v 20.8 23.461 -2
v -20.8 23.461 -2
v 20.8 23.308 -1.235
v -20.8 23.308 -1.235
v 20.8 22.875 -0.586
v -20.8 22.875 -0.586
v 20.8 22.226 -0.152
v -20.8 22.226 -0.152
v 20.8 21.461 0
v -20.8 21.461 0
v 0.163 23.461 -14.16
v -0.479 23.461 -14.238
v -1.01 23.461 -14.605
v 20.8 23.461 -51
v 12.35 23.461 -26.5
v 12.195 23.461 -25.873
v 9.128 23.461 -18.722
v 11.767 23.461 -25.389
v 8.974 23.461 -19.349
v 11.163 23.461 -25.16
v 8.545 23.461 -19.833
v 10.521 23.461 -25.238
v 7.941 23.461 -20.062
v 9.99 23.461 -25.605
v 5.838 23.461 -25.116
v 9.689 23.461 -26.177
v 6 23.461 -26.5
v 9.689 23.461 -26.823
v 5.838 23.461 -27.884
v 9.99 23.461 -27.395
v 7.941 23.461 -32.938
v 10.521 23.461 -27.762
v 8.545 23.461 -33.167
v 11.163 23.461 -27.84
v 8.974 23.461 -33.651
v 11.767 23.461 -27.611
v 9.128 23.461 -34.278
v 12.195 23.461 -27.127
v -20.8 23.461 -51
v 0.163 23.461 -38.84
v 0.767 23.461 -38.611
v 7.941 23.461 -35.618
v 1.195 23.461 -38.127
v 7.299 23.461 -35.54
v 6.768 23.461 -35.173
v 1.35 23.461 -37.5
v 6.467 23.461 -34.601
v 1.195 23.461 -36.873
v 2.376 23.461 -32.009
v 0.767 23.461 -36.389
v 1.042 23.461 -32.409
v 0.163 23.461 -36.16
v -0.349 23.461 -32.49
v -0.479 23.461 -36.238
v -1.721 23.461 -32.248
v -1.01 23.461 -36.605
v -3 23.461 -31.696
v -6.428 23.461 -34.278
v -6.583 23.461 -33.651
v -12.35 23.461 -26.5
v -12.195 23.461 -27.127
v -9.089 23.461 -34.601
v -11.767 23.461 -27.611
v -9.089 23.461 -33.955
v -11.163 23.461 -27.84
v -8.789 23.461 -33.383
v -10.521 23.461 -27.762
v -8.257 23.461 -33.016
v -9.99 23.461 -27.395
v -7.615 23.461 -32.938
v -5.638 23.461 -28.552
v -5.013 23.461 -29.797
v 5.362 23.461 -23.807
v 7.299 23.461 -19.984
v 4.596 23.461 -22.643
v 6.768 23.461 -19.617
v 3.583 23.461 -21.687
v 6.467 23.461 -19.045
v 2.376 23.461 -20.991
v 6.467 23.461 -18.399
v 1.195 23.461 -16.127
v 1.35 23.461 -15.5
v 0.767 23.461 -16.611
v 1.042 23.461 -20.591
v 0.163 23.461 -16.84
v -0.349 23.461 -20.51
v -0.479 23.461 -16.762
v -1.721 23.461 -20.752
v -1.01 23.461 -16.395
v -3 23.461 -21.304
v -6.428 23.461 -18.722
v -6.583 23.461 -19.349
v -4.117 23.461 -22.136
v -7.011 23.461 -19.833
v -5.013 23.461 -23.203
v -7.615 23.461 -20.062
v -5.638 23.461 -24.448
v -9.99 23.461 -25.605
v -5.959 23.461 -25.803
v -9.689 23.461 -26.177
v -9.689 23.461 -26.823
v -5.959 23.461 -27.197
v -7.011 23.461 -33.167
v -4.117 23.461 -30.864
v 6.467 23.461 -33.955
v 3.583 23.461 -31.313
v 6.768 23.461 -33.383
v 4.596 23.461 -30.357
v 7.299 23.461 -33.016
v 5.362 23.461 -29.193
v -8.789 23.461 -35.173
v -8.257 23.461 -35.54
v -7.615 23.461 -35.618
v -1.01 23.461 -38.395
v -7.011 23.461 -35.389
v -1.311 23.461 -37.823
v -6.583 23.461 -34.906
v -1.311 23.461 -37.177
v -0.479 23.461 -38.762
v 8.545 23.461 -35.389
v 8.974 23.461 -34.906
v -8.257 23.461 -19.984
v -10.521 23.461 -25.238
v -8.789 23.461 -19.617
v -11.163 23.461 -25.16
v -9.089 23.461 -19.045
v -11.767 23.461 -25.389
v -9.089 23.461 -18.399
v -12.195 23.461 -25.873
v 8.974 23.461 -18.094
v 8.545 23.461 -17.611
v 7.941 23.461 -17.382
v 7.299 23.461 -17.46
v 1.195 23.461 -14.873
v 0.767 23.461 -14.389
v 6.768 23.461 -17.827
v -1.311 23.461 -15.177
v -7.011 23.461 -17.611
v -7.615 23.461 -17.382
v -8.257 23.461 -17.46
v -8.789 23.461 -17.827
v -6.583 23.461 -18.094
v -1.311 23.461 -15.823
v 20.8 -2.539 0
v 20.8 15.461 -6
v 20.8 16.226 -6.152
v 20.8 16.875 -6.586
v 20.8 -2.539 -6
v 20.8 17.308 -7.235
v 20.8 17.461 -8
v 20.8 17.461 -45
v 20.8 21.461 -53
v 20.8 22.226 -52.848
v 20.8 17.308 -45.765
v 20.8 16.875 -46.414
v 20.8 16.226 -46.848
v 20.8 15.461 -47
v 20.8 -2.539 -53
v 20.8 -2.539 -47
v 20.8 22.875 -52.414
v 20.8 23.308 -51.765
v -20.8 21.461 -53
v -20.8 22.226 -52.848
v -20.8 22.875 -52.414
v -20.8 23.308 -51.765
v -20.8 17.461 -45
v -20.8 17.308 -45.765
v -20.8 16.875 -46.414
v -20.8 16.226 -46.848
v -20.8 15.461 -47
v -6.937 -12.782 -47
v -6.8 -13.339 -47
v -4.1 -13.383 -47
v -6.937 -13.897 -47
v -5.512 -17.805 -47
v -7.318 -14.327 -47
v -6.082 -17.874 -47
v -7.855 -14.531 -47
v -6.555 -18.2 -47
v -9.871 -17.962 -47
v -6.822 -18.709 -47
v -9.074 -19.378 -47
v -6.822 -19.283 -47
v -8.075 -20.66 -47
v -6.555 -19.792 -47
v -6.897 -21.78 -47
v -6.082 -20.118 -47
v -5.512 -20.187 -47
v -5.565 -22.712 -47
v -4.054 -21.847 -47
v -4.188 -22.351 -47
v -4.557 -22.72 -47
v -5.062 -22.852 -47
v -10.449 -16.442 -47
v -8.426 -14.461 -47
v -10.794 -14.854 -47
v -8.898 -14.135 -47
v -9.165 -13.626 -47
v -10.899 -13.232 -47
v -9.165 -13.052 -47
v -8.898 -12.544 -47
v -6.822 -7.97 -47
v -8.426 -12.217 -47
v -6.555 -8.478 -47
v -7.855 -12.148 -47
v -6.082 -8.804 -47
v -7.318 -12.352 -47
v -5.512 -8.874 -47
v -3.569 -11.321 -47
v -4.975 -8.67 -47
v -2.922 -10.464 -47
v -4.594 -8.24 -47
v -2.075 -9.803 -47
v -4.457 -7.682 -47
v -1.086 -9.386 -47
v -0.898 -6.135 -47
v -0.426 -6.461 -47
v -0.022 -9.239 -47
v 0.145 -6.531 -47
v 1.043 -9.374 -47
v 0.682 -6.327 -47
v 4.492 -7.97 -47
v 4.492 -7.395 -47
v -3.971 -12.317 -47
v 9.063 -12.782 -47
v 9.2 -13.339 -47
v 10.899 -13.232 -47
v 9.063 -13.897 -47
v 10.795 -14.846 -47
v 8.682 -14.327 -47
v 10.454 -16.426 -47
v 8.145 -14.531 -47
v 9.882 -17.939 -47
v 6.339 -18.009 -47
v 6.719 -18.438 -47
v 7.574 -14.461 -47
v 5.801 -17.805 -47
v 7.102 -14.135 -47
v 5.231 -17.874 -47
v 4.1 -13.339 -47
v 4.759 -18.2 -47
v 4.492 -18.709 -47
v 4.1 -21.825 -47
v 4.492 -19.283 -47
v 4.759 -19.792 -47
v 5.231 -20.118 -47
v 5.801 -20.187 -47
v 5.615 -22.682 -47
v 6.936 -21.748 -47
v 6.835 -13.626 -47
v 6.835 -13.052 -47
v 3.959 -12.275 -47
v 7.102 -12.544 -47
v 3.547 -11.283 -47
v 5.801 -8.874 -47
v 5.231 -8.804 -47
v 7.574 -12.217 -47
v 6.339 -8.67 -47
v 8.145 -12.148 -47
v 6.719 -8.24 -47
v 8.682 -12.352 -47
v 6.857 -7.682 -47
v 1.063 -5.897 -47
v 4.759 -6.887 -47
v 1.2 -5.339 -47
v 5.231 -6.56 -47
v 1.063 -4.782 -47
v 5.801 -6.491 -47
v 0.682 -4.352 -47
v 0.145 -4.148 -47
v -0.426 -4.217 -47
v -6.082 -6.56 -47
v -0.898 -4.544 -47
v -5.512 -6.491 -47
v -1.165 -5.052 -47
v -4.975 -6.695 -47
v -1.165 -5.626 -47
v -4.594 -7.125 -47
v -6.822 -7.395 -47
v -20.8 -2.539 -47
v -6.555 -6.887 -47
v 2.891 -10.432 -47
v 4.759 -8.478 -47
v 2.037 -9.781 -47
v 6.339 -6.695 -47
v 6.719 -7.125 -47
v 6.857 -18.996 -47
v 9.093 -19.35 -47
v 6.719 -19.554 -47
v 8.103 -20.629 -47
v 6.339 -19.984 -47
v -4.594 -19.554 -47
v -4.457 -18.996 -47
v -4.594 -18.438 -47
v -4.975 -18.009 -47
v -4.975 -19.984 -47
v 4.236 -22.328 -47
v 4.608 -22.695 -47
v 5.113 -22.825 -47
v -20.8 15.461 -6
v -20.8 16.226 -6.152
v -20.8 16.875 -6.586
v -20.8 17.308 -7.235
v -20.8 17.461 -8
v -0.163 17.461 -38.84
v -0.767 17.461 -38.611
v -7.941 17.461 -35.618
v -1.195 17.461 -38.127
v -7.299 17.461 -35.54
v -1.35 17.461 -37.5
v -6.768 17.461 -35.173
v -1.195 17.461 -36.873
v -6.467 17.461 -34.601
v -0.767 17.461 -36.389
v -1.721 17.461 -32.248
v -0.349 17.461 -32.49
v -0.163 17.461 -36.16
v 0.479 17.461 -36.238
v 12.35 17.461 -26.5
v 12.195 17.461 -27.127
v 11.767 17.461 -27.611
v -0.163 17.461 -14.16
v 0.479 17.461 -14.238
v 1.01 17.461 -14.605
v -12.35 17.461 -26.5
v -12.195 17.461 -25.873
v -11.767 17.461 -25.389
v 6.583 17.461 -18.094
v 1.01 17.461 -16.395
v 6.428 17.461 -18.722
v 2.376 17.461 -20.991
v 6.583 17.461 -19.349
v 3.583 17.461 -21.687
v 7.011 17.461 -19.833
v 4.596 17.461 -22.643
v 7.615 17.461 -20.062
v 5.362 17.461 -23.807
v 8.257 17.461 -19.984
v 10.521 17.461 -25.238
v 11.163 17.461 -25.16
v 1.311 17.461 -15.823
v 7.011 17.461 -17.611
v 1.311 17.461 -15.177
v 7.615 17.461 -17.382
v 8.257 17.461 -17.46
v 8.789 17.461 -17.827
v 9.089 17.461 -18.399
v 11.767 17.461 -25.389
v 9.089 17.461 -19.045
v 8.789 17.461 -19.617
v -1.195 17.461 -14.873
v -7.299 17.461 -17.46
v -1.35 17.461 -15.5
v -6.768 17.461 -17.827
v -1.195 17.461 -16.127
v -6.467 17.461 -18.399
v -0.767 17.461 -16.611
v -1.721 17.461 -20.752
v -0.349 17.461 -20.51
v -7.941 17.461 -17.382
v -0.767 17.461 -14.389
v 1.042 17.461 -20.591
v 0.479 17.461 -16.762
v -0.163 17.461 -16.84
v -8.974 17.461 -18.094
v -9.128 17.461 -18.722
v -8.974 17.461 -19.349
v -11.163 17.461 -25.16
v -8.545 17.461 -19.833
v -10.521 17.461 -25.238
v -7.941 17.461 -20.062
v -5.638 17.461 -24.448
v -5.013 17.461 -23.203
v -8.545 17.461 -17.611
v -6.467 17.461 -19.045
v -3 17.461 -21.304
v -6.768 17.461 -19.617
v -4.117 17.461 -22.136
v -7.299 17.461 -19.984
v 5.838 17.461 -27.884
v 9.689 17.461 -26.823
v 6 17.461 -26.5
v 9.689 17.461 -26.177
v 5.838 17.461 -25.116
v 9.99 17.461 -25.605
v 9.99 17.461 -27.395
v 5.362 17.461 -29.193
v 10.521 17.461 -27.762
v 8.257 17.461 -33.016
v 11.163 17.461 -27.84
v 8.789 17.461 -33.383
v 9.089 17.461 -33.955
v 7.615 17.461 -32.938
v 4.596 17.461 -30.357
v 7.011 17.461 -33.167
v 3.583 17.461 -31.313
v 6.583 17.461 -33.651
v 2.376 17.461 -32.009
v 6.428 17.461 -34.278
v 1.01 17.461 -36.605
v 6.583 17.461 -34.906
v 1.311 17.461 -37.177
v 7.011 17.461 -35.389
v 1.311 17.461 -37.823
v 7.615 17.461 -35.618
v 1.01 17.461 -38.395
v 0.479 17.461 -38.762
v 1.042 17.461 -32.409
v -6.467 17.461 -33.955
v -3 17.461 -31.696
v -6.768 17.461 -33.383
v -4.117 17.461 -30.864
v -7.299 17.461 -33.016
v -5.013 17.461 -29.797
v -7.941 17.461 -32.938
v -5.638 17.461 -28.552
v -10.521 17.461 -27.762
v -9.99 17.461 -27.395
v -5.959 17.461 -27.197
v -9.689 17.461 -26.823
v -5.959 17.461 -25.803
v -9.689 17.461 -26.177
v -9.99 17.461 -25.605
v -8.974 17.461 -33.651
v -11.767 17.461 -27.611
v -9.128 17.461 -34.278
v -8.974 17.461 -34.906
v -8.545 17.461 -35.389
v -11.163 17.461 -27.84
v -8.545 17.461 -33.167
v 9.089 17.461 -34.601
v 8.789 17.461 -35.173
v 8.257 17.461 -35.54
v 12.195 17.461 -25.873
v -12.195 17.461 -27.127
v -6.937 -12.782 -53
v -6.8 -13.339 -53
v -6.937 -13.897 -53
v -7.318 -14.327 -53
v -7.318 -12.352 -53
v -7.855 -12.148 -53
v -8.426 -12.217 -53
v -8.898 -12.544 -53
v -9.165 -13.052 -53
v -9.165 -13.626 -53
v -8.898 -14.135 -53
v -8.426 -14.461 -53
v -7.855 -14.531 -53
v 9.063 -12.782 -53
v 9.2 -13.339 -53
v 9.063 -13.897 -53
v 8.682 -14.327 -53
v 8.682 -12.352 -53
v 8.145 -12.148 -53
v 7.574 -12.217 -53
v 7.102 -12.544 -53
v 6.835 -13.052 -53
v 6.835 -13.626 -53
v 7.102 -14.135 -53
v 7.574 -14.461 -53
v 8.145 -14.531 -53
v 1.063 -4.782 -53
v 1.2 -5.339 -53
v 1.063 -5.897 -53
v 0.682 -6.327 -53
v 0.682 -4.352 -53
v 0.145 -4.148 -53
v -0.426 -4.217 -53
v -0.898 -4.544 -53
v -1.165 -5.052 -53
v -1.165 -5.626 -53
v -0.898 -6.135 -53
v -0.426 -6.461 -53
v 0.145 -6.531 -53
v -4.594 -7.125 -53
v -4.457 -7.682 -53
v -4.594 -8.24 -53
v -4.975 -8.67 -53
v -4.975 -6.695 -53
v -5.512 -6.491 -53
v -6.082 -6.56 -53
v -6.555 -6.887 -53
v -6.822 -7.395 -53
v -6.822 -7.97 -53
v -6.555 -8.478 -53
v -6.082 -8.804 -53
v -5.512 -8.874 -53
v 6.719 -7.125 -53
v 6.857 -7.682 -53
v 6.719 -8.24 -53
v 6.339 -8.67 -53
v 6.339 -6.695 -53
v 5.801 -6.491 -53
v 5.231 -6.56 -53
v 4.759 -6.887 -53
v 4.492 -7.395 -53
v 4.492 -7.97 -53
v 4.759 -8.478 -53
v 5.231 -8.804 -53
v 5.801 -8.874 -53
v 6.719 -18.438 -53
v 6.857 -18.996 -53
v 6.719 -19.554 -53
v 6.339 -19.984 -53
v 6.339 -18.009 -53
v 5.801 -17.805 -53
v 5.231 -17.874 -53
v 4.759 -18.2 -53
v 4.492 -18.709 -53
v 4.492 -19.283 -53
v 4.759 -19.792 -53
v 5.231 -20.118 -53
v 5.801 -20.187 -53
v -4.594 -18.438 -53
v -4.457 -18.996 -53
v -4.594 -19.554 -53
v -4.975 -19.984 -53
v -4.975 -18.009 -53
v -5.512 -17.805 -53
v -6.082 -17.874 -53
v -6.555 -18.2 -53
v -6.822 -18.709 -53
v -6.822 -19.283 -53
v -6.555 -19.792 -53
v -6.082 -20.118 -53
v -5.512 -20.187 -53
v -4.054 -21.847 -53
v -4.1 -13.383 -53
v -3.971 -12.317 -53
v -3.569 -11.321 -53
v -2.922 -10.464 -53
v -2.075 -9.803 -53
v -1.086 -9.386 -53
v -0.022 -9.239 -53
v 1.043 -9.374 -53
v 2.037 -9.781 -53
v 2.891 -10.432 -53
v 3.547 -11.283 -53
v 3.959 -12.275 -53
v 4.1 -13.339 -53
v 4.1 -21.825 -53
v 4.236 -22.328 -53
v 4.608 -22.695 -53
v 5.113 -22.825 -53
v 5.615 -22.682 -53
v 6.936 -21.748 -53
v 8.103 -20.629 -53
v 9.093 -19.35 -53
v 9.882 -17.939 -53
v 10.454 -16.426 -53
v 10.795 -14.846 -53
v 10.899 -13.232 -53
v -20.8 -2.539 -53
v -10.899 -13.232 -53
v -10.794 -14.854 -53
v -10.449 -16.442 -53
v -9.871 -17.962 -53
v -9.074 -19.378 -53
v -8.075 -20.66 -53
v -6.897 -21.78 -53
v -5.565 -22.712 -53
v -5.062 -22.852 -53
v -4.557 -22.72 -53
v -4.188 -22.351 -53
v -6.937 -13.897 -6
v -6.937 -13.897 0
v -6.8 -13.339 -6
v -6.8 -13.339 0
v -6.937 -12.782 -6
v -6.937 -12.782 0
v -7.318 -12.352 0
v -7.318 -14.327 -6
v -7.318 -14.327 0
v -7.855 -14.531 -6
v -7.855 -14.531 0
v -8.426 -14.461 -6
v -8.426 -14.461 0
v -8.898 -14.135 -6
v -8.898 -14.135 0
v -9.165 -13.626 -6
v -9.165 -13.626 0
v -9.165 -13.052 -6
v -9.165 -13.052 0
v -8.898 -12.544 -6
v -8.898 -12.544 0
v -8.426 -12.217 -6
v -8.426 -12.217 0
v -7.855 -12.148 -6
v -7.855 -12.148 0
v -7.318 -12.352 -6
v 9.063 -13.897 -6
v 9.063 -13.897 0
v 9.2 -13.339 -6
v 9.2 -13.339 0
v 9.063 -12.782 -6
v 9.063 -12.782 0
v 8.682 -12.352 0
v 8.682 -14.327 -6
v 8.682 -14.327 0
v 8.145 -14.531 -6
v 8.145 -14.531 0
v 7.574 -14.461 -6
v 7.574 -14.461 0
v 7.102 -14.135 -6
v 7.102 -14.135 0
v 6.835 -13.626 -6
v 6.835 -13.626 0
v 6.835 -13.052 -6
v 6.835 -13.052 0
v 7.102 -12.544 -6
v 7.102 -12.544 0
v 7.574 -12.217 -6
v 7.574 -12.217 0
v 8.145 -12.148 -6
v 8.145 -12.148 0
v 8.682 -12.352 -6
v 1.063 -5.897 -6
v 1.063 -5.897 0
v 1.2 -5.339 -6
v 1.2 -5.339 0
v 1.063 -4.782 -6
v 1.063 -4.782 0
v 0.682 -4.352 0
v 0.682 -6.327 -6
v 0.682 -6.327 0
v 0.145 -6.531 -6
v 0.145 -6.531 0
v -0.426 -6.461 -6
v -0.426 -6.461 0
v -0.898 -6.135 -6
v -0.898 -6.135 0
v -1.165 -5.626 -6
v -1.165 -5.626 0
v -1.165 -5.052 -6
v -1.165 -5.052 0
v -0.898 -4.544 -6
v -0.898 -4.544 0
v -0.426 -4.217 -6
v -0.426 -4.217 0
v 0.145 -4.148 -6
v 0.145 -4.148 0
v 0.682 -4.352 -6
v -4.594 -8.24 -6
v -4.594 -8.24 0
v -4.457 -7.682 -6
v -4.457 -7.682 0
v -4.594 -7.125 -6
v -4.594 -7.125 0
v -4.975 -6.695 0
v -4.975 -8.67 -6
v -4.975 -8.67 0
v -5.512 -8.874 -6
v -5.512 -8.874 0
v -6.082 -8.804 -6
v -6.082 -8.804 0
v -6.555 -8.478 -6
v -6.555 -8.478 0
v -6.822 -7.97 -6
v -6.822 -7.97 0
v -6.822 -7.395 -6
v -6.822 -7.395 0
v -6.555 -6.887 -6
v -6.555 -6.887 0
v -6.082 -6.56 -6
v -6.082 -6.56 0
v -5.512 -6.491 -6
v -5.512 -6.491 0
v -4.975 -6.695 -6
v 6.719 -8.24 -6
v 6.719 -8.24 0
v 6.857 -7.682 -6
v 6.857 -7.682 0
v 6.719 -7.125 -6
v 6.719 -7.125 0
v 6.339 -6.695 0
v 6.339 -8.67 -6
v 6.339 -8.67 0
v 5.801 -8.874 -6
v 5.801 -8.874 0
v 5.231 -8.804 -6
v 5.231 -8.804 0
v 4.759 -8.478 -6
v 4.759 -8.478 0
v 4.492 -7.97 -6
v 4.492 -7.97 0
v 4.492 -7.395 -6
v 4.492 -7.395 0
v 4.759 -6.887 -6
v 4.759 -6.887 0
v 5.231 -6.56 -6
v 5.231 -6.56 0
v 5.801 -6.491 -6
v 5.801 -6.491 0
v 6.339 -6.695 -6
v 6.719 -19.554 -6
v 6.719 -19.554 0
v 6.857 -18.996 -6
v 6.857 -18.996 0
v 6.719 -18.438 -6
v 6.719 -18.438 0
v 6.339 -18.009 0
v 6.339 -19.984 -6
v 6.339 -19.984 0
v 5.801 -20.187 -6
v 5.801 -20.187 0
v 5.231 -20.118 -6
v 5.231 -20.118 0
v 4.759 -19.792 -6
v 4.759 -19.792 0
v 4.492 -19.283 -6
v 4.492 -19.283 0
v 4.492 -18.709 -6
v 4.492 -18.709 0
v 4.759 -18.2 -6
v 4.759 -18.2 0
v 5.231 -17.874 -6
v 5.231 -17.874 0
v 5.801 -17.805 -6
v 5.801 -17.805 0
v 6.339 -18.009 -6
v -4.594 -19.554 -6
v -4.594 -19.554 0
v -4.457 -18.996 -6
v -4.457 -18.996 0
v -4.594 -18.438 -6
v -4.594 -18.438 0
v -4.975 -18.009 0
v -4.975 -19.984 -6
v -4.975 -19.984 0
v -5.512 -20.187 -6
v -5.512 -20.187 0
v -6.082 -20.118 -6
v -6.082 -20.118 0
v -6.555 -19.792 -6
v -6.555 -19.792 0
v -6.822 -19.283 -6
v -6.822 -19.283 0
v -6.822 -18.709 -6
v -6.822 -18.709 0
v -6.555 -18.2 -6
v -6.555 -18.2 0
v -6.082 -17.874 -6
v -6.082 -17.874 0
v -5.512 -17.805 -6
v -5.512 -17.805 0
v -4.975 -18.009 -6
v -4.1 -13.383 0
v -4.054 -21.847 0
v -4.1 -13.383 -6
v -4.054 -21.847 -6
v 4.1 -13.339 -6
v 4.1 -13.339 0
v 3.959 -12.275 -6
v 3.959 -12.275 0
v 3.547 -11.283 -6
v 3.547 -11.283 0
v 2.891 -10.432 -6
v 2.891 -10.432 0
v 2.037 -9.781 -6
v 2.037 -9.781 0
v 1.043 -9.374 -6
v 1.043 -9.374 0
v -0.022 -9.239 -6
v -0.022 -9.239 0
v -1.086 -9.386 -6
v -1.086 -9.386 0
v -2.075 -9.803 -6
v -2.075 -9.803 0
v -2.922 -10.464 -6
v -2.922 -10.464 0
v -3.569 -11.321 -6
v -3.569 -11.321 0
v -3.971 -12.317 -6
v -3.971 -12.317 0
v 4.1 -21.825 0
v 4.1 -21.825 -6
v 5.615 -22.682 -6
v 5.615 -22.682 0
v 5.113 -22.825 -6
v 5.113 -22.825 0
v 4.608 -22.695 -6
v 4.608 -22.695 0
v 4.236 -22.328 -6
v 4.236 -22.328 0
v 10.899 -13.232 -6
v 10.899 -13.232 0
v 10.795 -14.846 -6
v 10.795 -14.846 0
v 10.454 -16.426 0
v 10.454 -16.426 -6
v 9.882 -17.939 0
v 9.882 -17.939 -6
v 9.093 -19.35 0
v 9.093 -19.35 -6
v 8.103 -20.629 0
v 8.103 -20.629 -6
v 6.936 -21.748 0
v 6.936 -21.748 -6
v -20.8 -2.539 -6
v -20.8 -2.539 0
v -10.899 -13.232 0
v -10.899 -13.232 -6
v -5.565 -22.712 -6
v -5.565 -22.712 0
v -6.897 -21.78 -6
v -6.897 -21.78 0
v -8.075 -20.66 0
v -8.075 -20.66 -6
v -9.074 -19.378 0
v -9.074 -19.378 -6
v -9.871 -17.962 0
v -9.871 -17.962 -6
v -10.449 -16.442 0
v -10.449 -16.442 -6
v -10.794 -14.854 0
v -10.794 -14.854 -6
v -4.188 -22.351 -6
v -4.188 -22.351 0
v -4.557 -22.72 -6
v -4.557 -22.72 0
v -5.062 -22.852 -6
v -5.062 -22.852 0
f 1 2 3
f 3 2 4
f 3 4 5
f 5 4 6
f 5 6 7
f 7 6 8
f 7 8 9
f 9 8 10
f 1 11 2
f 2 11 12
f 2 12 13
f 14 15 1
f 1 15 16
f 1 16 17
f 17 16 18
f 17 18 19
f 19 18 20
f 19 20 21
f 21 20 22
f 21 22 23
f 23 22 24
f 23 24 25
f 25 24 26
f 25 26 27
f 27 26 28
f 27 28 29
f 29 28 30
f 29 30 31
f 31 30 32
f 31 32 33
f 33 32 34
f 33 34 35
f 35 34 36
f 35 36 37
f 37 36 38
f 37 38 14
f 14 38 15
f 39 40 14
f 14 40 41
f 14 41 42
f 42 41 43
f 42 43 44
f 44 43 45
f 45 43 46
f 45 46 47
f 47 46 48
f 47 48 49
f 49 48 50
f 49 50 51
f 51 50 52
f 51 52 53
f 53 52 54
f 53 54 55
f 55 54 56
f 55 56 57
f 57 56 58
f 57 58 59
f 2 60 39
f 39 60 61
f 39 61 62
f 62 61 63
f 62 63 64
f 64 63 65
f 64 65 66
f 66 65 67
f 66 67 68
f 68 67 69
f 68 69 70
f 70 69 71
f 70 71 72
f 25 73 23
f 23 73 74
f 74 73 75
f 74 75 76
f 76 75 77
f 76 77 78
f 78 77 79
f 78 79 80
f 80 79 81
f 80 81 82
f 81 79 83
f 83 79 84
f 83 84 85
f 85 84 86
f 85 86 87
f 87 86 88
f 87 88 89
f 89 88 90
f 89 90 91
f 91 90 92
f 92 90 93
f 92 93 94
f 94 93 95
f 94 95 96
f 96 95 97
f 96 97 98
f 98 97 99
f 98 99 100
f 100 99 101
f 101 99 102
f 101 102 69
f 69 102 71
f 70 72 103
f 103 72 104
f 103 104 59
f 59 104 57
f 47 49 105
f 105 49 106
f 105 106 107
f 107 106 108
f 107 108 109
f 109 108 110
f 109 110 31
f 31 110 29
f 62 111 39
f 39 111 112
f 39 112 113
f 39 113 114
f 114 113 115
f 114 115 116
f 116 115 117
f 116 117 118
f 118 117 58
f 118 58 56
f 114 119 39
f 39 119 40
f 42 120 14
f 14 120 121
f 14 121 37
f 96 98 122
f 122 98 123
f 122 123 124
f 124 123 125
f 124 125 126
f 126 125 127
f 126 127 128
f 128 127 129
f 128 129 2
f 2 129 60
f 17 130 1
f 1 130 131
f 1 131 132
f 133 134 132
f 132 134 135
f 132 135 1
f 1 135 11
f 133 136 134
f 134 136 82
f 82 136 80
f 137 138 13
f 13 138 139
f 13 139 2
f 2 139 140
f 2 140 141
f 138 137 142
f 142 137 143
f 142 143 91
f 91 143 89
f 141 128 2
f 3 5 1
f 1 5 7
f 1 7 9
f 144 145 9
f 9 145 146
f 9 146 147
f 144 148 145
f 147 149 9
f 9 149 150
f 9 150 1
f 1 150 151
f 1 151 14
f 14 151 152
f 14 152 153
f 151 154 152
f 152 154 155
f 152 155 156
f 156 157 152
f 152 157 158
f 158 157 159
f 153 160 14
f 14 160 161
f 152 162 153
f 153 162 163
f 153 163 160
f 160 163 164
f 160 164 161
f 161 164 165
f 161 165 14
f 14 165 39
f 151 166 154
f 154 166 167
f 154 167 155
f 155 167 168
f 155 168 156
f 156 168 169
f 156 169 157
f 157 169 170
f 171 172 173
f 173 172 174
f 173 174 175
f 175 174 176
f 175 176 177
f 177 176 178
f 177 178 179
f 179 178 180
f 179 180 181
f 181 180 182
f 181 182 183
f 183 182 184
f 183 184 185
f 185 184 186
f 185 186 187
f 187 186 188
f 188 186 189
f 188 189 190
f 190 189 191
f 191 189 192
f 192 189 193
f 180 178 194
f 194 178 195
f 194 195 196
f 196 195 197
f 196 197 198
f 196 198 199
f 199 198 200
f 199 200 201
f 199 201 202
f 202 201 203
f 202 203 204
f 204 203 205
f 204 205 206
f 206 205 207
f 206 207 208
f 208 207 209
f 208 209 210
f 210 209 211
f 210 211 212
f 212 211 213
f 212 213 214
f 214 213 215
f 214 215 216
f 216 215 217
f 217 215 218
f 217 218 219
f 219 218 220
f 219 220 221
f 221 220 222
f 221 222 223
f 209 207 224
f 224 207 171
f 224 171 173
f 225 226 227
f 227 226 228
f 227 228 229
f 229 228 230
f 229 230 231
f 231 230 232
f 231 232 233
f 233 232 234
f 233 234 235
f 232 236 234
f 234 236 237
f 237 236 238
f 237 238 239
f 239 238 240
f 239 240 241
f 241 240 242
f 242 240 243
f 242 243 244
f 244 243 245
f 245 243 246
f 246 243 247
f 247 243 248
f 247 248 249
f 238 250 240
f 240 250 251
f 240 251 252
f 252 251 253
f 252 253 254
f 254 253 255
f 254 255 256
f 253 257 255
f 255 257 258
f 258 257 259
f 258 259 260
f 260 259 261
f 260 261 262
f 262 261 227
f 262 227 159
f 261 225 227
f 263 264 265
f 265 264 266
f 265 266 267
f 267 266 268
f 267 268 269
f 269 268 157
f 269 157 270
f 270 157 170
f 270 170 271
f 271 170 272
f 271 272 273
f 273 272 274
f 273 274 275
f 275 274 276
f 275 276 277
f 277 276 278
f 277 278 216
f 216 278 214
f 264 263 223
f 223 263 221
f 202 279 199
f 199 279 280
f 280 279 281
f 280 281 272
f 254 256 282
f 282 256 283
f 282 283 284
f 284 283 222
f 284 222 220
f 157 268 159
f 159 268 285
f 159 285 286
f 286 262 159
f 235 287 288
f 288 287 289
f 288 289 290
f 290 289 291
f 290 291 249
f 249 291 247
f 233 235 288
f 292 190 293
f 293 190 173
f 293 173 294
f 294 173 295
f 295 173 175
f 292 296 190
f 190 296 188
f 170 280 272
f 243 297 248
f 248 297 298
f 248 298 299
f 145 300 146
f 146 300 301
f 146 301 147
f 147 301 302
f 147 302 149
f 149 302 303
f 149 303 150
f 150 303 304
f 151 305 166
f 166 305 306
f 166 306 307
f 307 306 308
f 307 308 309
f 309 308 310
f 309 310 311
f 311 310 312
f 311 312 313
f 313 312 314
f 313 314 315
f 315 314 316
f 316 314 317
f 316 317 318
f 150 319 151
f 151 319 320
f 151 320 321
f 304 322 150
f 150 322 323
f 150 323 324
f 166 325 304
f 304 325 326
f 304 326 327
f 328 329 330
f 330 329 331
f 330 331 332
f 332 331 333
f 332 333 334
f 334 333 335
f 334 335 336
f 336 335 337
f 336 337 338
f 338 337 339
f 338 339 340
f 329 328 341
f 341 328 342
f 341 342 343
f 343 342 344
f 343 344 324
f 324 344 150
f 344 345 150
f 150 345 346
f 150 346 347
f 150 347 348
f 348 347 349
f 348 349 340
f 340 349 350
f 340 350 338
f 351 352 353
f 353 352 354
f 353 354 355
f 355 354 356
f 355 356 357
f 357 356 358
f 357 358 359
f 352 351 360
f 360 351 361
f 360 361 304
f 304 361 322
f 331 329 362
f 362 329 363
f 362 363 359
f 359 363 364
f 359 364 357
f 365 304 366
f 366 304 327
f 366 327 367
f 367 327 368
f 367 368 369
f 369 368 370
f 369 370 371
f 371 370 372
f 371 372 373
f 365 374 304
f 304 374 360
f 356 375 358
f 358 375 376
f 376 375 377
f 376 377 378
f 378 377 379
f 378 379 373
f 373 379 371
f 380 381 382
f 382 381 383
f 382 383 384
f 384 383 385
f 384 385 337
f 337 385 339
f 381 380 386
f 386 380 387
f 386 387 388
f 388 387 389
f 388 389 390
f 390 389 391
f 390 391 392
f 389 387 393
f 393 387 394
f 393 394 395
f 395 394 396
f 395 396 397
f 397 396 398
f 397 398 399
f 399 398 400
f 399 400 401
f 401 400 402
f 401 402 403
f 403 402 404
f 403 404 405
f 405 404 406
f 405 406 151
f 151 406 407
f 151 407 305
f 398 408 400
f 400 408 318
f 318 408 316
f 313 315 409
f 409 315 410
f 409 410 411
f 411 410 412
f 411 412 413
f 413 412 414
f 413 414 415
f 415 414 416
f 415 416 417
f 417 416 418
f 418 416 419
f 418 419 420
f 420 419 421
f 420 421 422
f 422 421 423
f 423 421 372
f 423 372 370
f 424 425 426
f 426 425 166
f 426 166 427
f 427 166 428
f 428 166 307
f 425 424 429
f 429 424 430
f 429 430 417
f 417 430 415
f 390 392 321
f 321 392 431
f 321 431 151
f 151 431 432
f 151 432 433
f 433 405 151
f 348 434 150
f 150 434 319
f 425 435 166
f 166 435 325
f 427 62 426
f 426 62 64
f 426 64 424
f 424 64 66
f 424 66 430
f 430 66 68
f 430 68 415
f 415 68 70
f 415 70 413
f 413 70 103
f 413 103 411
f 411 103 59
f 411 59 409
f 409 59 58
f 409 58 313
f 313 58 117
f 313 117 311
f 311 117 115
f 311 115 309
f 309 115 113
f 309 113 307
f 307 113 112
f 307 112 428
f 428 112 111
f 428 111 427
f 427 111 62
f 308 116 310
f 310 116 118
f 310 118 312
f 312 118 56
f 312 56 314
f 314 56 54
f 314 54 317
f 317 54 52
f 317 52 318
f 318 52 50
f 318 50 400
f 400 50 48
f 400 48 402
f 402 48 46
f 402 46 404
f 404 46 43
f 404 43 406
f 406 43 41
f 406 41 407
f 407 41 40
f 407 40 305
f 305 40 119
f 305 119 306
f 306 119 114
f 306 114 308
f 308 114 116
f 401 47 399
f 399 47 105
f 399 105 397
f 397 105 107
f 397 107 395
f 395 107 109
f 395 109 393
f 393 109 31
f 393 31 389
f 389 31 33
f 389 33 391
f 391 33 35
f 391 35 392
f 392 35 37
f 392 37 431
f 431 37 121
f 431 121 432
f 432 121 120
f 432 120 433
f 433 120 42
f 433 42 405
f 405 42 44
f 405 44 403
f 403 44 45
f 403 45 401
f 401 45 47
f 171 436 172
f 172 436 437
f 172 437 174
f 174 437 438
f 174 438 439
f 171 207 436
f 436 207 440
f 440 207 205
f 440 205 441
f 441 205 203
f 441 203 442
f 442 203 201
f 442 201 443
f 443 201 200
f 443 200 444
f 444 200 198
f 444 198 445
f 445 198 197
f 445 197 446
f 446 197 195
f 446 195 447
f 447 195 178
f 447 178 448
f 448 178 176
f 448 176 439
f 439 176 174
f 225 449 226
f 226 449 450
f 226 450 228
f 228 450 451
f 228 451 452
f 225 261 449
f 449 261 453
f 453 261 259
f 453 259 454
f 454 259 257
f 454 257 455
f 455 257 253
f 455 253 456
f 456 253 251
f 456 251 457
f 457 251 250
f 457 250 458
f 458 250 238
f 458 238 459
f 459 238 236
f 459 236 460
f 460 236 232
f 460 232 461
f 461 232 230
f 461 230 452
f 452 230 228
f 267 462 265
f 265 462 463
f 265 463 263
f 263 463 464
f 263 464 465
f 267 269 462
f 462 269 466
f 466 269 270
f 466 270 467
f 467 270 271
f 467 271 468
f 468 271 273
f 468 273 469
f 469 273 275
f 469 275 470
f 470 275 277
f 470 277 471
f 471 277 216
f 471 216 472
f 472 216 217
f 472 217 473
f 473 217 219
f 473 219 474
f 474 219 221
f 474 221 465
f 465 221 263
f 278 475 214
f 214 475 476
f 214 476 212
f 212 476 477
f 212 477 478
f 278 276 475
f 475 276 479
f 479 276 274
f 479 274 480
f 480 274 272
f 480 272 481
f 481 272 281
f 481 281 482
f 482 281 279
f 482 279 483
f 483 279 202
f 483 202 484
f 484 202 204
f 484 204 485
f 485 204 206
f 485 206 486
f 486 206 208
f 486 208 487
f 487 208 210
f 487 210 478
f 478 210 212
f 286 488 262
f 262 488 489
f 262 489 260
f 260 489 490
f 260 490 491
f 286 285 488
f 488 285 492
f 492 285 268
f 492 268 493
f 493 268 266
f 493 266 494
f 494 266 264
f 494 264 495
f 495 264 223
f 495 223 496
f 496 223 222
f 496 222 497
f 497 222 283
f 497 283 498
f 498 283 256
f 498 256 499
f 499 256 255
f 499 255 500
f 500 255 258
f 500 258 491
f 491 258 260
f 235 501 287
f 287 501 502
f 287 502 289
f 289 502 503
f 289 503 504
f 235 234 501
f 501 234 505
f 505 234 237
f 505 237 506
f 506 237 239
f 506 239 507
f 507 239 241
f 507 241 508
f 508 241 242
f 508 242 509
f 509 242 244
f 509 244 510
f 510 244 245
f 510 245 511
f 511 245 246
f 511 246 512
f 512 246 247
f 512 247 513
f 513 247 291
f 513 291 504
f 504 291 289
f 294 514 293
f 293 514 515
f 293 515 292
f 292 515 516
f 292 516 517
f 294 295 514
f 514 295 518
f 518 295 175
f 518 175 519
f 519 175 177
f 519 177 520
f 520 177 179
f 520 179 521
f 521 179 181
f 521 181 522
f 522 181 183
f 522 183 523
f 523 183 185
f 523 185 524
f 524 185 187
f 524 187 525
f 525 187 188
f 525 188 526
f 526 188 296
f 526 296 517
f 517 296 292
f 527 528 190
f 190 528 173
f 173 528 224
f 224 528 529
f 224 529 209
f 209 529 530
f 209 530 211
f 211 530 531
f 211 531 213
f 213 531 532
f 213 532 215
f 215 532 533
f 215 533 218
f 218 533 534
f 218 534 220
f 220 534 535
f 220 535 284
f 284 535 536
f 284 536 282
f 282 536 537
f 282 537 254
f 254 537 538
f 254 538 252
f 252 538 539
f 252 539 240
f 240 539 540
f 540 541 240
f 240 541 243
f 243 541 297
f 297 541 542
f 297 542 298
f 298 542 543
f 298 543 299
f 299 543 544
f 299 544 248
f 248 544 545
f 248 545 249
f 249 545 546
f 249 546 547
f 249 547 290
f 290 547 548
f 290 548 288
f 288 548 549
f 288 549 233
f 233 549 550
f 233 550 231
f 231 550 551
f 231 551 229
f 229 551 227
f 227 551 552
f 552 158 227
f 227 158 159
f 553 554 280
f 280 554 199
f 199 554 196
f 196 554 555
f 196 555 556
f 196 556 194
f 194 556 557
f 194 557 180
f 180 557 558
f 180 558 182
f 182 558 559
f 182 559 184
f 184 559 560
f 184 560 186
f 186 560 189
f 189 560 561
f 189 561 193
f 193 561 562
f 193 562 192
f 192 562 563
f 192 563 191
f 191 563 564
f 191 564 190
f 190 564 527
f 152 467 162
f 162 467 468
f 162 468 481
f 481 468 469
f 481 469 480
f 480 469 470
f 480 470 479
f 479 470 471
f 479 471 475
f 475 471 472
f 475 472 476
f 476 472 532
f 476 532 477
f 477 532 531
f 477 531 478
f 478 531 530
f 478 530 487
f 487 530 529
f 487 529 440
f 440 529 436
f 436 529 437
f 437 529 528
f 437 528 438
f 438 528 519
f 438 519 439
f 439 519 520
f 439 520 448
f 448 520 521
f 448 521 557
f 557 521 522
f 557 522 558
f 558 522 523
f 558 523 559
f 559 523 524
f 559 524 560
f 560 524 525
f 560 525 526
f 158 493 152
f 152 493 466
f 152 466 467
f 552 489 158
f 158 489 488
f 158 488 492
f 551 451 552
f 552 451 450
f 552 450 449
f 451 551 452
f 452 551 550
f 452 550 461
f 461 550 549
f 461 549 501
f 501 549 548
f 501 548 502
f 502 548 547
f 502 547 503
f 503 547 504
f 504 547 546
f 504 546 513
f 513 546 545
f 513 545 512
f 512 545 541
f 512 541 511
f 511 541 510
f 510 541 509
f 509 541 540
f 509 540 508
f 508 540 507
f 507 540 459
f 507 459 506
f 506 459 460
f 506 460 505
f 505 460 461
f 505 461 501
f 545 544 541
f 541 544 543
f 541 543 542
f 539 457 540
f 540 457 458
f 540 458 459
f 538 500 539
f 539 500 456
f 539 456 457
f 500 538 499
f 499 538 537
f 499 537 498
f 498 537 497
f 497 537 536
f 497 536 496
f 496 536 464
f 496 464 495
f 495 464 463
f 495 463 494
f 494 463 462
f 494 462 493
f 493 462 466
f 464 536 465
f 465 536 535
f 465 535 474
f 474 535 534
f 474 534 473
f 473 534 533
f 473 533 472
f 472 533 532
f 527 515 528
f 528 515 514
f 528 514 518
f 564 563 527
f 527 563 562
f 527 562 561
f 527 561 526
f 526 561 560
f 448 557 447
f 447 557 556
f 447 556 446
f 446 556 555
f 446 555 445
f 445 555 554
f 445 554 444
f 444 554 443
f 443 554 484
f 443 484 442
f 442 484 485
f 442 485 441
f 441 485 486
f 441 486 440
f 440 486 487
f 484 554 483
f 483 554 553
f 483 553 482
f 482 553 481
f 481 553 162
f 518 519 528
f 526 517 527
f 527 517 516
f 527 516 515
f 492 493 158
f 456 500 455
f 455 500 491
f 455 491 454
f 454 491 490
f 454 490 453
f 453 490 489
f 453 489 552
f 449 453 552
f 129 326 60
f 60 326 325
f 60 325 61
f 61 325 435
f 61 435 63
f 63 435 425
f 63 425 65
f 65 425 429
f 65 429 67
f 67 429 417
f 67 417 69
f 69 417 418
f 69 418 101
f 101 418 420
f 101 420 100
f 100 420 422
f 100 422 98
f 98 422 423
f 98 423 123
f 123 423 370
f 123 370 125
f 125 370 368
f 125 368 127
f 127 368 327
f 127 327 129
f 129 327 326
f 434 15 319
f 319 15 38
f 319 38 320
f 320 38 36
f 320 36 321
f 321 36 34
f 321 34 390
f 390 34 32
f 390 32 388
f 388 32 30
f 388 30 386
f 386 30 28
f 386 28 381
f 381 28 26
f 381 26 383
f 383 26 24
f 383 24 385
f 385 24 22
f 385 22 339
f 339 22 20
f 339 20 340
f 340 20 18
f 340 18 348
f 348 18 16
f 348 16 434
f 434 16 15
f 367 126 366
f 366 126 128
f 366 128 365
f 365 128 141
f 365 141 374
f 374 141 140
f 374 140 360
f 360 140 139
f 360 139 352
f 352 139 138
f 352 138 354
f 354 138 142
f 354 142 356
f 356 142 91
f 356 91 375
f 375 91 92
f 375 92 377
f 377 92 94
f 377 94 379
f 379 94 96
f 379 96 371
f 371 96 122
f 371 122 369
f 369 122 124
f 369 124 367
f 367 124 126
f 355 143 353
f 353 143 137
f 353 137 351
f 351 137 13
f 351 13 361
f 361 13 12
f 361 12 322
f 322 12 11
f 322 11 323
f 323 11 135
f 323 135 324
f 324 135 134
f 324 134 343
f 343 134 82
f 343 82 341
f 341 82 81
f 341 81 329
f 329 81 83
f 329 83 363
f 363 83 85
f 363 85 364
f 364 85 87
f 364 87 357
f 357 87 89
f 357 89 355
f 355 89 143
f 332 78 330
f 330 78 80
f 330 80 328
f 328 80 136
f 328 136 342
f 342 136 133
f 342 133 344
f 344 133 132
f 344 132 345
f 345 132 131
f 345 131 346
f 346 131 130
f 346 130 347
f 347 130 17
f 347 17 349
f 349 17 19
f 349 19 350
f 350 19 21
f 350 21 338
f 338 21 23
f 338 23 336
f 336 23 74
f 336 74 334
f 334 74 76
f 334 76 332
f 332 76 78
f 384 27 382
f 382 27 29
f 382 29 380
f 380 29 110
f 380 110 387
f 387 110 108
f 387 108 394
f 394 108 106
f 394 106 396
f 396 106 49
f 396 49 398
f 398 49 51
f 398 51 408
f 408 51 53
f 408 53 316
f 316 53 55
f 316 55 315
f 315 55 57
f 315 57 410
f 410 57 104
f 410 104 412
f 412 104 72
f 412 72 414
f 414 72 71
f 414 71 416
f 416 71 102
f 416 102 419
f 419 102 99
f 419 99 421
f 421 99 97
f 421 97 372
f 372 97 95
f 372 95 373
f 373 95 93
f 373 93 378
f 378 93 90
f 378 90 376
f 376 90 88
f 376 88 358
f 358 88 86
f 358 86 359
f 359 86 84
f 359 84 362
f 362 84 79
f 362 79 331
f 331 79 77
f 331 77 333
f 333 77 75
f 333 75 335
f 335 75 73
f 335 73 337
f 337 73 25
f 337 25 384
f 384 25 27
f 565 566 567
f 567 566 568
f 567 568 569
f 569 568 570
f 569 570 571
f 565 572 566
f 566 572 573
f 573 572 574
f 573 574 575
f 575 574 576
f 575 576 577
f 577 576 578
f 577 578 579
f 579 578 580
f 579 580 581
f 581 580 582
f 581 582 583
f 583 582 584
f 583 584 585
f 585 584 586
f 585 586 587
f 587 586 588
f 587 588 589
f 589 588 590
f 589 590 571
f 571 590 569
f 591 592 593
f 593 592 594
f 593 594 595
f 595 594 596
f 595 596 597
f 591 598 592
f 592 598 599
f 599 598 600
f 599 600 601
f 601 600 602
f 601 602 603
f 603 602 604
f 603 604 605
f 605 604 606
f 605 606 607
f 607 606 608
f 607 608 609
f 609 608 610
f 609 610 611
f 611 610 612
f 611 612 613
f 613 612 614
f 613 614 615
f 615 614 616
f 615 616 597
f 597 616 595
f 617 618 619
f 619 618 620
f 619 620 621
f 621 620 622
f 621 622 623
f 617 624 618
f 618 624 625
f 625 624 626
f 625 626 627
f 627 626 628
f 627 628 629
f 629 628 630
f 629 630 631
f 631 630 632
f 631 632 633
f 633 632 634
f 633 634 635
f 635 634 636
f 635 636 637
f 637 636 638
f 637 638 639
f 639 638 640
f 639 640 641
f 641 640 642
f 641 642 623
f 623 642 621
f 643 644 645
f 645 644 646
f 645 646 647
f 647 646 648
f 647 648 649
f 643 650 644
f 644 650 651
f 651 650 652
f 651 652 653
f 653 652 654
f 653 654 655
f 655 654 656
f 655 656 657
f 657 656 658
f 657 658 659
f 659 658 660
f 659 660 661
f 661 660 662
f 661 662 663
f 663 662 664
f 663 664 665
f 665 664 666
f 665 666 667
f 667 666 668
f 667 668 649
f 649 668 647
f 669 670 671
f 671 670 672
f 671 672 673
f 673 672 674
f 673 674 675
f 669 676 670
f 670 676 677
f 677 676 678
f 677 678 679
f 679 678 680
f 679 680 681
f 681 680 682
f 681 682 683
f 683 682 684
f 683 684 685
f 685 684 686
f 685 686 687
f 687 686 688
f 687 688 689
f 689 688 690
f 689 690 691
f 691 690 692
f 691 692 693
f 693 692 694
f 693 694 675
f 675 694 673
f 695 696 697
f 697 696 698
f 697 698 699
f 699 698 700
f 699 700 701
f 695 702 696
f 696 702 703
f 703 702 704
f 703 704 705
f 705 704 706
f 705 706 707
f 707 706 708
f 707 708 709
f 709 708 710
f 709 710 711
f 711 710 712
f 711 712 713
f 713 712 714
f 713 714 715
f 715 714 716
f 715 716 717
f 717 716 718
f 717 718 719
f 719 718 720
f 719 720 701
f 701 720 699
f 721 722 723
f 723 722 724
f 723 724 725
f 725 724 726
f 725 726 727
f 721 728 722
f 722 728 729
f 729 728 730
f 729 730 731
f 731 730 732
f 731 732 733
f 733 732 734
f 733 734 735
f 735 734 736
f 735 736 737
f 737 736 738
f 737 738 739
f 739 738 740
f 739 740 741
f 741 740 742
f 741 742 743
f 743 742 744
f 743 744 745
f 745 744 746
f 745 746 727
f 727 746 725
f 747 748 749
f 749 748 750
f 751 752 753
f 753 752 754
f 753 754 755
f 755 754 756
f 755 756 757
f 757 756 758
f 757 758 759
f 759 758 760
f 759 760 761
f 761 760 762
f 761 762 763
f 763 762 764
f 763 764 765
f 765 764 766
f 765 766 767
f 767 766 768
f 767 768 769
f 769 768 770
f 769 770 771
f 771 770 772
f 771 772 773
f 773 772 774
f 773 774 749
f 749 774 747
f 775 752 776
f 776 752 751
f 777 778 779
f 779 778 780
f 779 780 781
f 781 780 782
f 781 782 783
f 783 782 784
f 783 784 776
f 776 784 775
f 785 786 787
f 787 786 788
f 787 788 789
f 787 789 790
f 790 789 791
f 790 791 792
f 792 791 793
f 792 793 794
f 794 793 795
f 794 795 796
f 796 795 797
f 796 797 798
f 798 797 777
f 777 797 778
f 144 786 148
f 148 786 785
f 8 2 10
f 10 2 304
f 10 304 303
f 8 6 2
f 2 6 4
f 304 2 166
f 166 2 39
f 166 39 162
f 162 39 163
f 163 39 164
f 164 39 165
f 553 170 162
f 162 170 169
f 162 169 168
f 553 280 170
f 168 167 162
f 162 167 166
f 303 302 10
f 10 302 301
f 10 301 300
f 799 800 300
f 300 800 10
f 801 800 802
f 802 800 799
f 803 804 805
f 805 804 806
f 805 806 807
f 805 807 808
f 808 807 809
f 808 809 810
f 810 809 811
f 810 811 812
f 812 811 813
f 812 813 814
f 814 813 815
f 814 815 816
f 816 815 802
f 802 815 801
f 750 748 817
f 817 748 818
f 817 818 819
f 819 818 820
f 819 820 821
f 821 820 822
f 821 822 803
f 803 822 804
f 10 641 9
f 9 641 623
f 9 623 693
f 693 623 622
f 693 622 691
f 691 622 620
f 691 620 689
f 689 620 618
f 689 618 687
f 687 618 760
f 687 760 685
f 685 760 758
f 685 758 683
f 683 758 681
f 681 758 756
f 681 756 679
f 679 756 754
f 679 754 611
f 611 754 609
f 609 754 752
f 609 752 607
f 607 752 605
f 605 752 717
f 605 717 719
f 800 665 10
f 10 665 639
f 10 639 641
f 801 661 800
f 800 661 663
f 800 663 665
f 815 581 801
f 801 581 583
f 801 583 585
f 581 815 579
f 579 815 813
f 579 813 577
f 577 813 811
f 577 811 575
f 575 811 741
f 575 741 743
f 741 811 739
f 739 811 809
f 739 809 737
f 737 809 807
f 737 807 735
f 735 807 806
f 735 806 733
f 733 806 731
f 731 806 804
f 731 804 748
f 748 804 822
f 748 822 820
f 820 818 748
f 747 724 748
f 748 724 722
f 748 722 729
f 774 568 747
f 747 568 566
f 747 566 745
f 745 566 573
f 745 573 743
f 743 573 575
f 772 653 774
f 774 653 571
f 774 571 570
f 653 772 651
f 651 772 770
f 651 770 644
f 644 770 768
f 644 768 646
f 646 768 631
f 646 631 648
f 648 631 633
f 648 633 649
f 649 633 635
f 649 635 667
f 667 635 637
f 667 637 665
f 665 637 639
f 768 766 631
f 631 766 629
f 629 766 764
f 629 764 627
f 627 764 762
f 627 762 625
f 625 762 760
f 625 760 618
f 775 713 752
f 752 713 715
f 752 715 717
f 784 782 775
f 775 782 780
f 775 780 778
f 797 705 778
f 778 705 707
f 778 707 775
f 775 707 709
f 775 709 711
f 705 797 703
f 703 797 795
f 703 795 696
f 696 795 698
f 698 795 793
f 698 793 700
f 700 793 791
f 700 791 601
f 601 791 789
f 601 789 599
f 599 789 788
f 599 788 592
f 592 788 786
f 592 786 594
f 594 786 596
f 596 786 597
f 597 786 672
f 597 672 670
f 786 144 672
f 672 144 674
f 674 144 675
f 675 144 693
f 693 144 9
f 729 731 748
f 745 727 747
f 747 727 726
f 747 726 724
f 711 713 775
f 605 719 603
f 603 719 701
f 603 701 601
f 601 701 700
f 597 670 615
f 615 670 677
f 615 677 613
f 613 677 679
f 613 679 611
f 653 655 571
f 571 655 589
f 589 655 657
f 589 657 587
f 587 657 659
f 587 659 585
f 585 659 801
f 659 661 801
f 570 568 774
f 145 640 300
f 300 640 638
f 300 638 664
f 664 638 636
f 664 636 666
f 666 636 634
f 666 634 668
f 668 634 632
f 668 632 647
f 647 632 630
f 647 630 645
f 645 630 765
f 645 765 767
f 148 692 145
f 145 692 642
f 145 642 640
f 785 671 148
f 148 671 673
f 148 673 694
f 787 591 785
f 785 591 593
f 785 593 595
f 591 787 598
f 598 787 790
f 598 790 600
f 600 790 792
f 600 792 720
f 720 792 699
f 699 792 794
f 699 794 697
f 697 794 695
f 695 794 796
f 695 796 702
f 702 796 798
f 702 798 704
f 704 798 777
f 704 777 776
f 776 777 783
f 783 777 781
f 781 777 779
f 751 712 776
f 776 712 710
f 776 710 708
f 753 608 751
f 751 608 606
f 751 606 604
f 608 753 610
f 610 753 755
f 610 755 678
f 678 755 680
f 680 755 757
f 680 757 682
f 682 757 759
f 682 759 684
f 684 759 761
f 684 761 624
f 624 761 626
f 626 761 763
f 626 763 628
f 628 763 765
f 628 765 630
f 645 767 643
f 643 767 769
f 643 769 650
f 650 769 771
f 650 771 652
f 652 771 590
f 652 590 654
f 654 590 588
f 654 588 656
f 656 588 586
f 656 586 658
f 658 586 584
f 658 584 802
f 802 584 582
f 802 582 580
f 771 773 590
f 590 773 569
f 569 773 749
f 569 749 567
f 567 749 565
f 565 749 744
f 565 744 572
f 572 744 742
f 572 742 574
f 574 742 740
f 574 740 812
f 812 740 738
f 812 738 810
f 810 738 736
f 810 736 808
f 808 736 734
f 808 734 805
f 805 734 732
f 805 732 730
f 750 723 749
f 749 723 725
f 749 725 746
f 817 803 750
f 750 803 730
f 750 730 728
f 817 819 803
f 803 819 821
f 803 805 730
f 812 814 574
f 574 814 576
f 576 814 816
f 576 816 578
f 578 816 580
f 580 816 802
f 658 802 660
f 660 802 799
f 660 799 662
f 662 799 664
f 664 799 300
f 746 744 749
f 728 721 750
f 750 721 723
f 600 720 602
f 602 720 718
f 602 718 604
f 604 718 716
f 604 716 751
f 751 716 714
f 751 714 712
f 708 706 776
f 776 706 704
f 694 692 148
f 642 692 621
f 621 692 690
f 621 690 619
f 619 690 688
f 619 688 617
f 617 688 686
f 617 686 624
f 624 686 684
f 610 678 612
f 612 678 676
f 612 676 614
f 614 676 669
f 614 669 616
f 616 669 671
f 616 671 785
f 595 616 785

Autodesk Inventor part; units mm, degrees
ref_plane "YZ Plane" through (0, 0, 0) normal (1, 0, 0) x (0, 1, 0)
ref_plane "XZ Plane" through (0, 0, 0) normal (0, 1, 0) x (-1, 0, 0)
ref_plane "XY Plane" through (0, 0, 0) normal (0, 0, 1) x (1, 0, 0)
ref_plane "작업 평면1" through (0, 0, 0) normal (0, 0, 1) x (1, 0, 0)
sketch "스케치1" plane through (0, 0, 0) normal (0, 0, 1) x (1, 0, 0)
  arc A0 (5.05, 17.3607) -> (6.05, 18.3607) centre (6.05, 17.3607) ccw projected
  line L0 (5.05, 17.3607) -> (-5.05, 17.3607) projected
  arc A1 (-6.05, 18.3607) -> (-5.05, 17.3607) centre (-6.05, 17.3607) ccw projected
  line L1 (-6.05, 18.3607) -> (-6.05, 23.4607) projected
  line L2 (-6.05, 23.4607) -> (-20.8, 23.4607) projected
  line L3 (-20.8, 23.4607) -> (-20.8, -2.5393) projected
  line L4 (-20.8, -2.5393) -> (-10.8995, -13.2319) projected
  arc A2 (-10.8995, -13.2319) -> (-5.5649, -22.7117) centre (0, -13.3393) ccw projected
  arc A3 (-5.5649, -22.7117) -> (-4.0544, -21.8465) centre (-5.0543, -21.8519) ccw projected
  line L5 (-4.0544, -21.8465) -> (-4.0998, -13.3833) projected
  arc A4 (4.1, -13.3393) -> (-4.0998, -13.3833) centre (0, -13.3393) ccw projected
  line L6 (4.1, -13.3393) -> (4.1, -21.8246) projected
  arc A5 (4.1, -21.8246) -> (5.6152, -22.6817) centre (5.1, -21.8246) ccw projected
  arc A6 (5.6152, -22.6817) -> (10.8995, -13.2319) centre (0, -13.3393) ccw projected
  line L7 (10.8995, -13.2319) -> (20.8, -2.5393) projected
  line L8 (20.8, -2.5393) -> (20.8, 23.4607) projected
  line L9 (20.8, 23.4607) -> (6.05, 23.4607) projected
  line L10 (6.05, 23.4607) -> (6.05, 18.3607) projected
  circle A7 centre (5.6569, -18.9962) radius 1.2 projected
  circle A8 centre (5.6569, -7.6825) radius 1.2 projected
  circle A9 centre (-5.6569, -7.6825) radius 1.2 projected
  circle A10 centre (0, -5.3393) radius 1.2 projected
  circle A11 centre (8, -13.3393) radius 1.2 projected
  circle A12 centre (-15.8, 20.4107) radius 1.35 projected
  circle A13 centre (15.8, 20.4107) radius 1.35 projected
  circle A14 centre (-8, -13.3393) radius 1.2 projected
  circle A15 centre (-5.6569, -18.9962) radius 1.2 projected
  line L11 (-20.8, 23.4607) -> (20.8, 23.4607)
  line L12 (20.8, 23.4607) -> (20.8, -2.5393)
  line L13 (20.8, -2.5393) -> (-20.8, -2.5393)
  line L14 (-20.8, -2.5393) -> (-20.8, 23.4607)
  circle A16 centre (0, -13.3393) radius 4.1
  circle A17 centre (0, -13.3393) radius 10.9
  circle A18 centre (0, -5.3393) radius 1.2
  circle A19 centre (-5.6569, -7.6825) radius 1.2
  circle A20 centre (-8, -13.3393) radius 1.2
  circle A21 centre (-5.6569, -18.9962) radius 1.2
  circle A22 centre (0, -21.3393) radius 1.2
  circle A23 centre (5.6569, -18.9962) radius 1.2
  circle A24 centre (8, -13.3393) radius 1.2
  circle A25 centre (5.6569, -7.6825) radius 1.2
  line L15 (-20.8, -2.5393) -> (-10.8995, -13.2319)
  line L16 (10.8995, -13.2319) -> (20.8, -2.5393)
  point P0 (0, 0)
  point P1 (-1.4731, -2.5393)
  point P2 (1.4731, -2.5393)
  dimension "d2" = 360
extrude "돌출1" add sketch "스케치1" against normal blind 6 contours L0 A1 L1 L11 L10 A0 | A0 L10 L9 L8 L13 A17 L3 L2 L1 A1 L0 | L7 A17 L13 | A6 A5 L6 A4 L5 A3 A2 A17 L13 | L13 A17 L4 | A12 | A13
sketch "스케치2" plane through (0, 0, -6) normal (0, 0, -1) x (-1, 0, 0)
  circle A0 centre (-5.6569, -18.9962) radius 1.2 projected
  circle A1 centre (-5.6569, -7.6825) radius 1.2 projected
  circle A2 centre (5.6569, -7.6825) radius 1.2 projected
  circle A3 centre (0, -5.3393) radius 1.2 projected
  circle A4 centre (-8, -13.3393) radius 1.2 projected
  circle A5 centre (15.8, 20.4107) radius 1.35 projected
  circle A6 centre (-15.8, 20.4107) radius 1.35 projected
  circle A7 centre (8, -13.3393) radius 1.2 projected
  circle A8 centre (5.6569, -18.9962) radius 1.2 projected
  arc A9 (-6.05, 18.3607) -> (-5.05, 17.3607) centre (-6.05, 17.3607) ccw projected
  line L0 (-6.05, 18.3607) -> (-6.05, 23.4607) projected
  line L1 (-20.8, 23.4607) -> (-6.05, 23.4607) projected
  line L2 (-20.8, -2.5393) -> (-20.8, 23.4607) projected
  line L3 (-10.8995, -13.2319) -> (-20.8, -2.5393) projected
  arc A10 (-10.8995, -13.2319) -> (-5.6152, -22.6817) centre (0, -13.3393) ccw projected
  arc A11 (-5.6152, -22.6817) -> (-4.1, -21.8246) centre (-5.1, -21.8246) ccw projected
  line L4 (-4.1, -13.3393) -> (-4.1, -21.8246) projected
  arc A12 (4.0998, -13.3833) -> (-4.1, -13.3393) centre (0, -13.3393) ccw projected
  line L5 (4.0544, -21.8465) -> (4.0998, -13.3833) projected
  arc A13 (4.0544, -21.8465) -> (5.5649, -22.7117) centre (5.0543, -21.8519) ccw projected
  arc A14 (5.5649, -22.7117) -> (10.8995, -13.2319) centre (0, -13.3393) ccw projected
  line L6 (20.8, -2.5393) -> (10.8995, -13.2319) projected
  line L7 (20.8, 23.4607) -> (20.8, -2.5393) projected
  line L8 (6.05, 23.4607) -> (20.8, 23.4607) projected
  line L9 (6.05, 23.4607) -> (6.05, 18.3607) projected
  arc A15 (5.05, 17.3607) -> (6.05, 18.3607) centre (6.05, 17.3607) ccw projected
  line L10 (5.05, 17.3607) -> (-5.05, 17.3607) projected
  line L11 (-20.8, 23.4607) -> (20.8, 23.4607)
  line L12 (20.8, 23.4607) -> (20.8, 17.4607)
  line L13 (20.8, 17.4607) -> (-20.8, 17.4607)
  line L14 (-20.8, 17.4607) -> (-20.8, 23.4607)
  point P0 (0, 0)
  dimension "d6" = 6
extrude "돌출2" add sketch "스케치2" along normal blind 20.5 contours A5 | A6 | L0 L11 L9 A15 L13 A9 | A9 L13 L2 L1 L0 | A15 L9 L8 L7 L13
sketch "스케치3" plane through (-20.8, 23.4607, 0) normal (0, 1, 0) x (1, 0, 0)
  line L0 (39.2, 41.4) -> (34, 41.4) projected
  line L1 (34, 41.4) -> (34, 43.6) projected
  line L2 (34, 43.6) -> (39.2, 43.6) projected
  line L3 (39.2, 43.6) -> (39.2, 41.4) projected
  line L4 (2.4, 11.6) -> (7.6, 11.6) projected
  line L5 (7.6, 11.6) -> (7.6, 9.4) projected
  line L6 (7.6, 9.4) -> (2.4, 9.4) projected
  line L7 (2.4, 9.4) -> (2.4, 11.6) projected
  line L8 (39.2, 11.6) -> (39.2, 9.4) projected
  line L9 (39.2, 9.4) -> (34, 9.4) projected
  line L10 (34, 9.4) -> (34, 11.6) projected
  line L11 (34, 11.6) -> (39.2, 11.6) projected
  line L12 (7.6, 41.4) -> (2.4, 41.4) projected
  line L13 (2.4, 41.4) -> (2.4, 43.6) projected
  line L14 (2.4, 43.6) -> (7.6, 43.6) projected
  line L15 (7.6, 43.6) -> (7.6, 41.4) projected
  line L16 (14.8, 47) -> (-0.2, 47) projected
  line L17 (-0.2, 47) -> (-0.2, 6) projected
  line L18 (-0.2, 6) -> (14.8, 6) projected
  line L19 (14.8, 0) -> (14.8, 6) projected
  line L20 (26.8, 0) -> (14.8, 0) projected
  line L21 (26.8, 0) -> (26.8, 6) projected
  line L22 (26.8, 6) -> (41.8, 6) projected
  line L23 (41.8, 6) -> (41.8, 47) projected
  line L24 (41.8, 47) -> (26.8, 47) projected
  line L25 (26.8, 53) -> (26.8, 47) projected
  line L26 (14.8, 53) -> (26.8, 53) projected
  line L27 (14.8, 53) -> (14.8, 47) projected
  circle A0 centre (20.8, 26.5) radius 6 projected
  circle A1 centre (20.8, 37.5) radius 1.6 projected
  circle A2 centre (13.0218, 34.2782) radius 1.6 projected
  circle A3 centre (9.8, 26.5) radius 1.6 projected
  circle A4 centre (13.0218, 18.7218) radius 1.6 projected
  circle A5 centre (20.8, 15.5) radius 1.6 projected
  circle A6 centre (28.5782, 18.7218) radius 1.6 projected
  circle A7 centre (31.8, 26.5) radius 1.6 projected
  circle A8 centre (28.5782, 34.2782) radius 1.6 projected
  circle A9 centre (20.8, 26.5) radius 6
  circle A10 centre (13.0218, 18.7218) radius 1.35
  circle A11 centre (20.8, 15.5) radius 1.35
  circle A12 centre (28.5782, 18.7218) radius 1.35
  circle A13 centre (31.8, 26.5) radius 1.35
  circle A14 centre (28.5782, 34.2782) radius 1.35
  circle A15 centre (20.8, 37.5) radius 1.35
  circle A16 centre (13.0218, 34.2782) radius 1.35
  circle A17 centre (9.8, 26.5) radius 1.35
  point P0 (20.8, 0)
  dimension "d9" = 2.7
  dimension "d12" = 360
extrude "돌출3" cut sketch "스케치3" against normal blind 20.5 contours A0 | A10 | A11 | A12 | A13 | A17
mirror "미러1" about plane through (0, 20.4607, -26.5) normal (0, 0, -1)
fillet "모깎기1" radius 2 4 edges at (0, 17.4607, -6) (0, 17.4607, -47) (0, 23.4607, -53) (0, 23.4607, 0)
sketch "스케치4" plane through (0, 0, 0) normal (0, 0, 1) x (1, 0, 0)
  line L0 (1.4731, -2.5393) -> (-1.4731, -2.5393) projected
  arc A0 (1.4731, -2.5393) -> (-1.4731, -2.5393) centre (0, -13.3393) ccw projected
  line L1 (-1.6142, -2.1682) -> (1.6887, -2.1682)
  line L2 (1.6887, -2.1682) -> (1.6887, -3.0074)
  line L3 (1.6887, -3.0074) -> (-1.6142, -3.0074)
  line L4 (-1.6142, -3.0074) -> (-1.6142, -2.1682)
  point P0 (0, 0)
extrude "돌출4" add sketch "스케치4" against normal blind 6 contours L0 A0 | L1 L2 L3 L4
sketch "스케치5" plane through (4.1, -21.8246, -53) normal (0, 0, -1) x (-1, 0, 0)
  line L0 (2.2483, 20.1118) -> (6.3529, 20.1118)
  line L1 (6.3529, 20.1118) -> (6.3529, 18.3836)
  line L2 (6.3529, 18.3836) -> (2.2483, 18.3836)
  line L3 (2.2483, 18.3836) -> (2.2483, 20.1118)
  point P0 (4.1, 21.8246)
extrude "돌출5" add sketch "스케치5" against normal blind 6
properties part number "shoulder_ver2_new" material "PMMA 플라스틱"
